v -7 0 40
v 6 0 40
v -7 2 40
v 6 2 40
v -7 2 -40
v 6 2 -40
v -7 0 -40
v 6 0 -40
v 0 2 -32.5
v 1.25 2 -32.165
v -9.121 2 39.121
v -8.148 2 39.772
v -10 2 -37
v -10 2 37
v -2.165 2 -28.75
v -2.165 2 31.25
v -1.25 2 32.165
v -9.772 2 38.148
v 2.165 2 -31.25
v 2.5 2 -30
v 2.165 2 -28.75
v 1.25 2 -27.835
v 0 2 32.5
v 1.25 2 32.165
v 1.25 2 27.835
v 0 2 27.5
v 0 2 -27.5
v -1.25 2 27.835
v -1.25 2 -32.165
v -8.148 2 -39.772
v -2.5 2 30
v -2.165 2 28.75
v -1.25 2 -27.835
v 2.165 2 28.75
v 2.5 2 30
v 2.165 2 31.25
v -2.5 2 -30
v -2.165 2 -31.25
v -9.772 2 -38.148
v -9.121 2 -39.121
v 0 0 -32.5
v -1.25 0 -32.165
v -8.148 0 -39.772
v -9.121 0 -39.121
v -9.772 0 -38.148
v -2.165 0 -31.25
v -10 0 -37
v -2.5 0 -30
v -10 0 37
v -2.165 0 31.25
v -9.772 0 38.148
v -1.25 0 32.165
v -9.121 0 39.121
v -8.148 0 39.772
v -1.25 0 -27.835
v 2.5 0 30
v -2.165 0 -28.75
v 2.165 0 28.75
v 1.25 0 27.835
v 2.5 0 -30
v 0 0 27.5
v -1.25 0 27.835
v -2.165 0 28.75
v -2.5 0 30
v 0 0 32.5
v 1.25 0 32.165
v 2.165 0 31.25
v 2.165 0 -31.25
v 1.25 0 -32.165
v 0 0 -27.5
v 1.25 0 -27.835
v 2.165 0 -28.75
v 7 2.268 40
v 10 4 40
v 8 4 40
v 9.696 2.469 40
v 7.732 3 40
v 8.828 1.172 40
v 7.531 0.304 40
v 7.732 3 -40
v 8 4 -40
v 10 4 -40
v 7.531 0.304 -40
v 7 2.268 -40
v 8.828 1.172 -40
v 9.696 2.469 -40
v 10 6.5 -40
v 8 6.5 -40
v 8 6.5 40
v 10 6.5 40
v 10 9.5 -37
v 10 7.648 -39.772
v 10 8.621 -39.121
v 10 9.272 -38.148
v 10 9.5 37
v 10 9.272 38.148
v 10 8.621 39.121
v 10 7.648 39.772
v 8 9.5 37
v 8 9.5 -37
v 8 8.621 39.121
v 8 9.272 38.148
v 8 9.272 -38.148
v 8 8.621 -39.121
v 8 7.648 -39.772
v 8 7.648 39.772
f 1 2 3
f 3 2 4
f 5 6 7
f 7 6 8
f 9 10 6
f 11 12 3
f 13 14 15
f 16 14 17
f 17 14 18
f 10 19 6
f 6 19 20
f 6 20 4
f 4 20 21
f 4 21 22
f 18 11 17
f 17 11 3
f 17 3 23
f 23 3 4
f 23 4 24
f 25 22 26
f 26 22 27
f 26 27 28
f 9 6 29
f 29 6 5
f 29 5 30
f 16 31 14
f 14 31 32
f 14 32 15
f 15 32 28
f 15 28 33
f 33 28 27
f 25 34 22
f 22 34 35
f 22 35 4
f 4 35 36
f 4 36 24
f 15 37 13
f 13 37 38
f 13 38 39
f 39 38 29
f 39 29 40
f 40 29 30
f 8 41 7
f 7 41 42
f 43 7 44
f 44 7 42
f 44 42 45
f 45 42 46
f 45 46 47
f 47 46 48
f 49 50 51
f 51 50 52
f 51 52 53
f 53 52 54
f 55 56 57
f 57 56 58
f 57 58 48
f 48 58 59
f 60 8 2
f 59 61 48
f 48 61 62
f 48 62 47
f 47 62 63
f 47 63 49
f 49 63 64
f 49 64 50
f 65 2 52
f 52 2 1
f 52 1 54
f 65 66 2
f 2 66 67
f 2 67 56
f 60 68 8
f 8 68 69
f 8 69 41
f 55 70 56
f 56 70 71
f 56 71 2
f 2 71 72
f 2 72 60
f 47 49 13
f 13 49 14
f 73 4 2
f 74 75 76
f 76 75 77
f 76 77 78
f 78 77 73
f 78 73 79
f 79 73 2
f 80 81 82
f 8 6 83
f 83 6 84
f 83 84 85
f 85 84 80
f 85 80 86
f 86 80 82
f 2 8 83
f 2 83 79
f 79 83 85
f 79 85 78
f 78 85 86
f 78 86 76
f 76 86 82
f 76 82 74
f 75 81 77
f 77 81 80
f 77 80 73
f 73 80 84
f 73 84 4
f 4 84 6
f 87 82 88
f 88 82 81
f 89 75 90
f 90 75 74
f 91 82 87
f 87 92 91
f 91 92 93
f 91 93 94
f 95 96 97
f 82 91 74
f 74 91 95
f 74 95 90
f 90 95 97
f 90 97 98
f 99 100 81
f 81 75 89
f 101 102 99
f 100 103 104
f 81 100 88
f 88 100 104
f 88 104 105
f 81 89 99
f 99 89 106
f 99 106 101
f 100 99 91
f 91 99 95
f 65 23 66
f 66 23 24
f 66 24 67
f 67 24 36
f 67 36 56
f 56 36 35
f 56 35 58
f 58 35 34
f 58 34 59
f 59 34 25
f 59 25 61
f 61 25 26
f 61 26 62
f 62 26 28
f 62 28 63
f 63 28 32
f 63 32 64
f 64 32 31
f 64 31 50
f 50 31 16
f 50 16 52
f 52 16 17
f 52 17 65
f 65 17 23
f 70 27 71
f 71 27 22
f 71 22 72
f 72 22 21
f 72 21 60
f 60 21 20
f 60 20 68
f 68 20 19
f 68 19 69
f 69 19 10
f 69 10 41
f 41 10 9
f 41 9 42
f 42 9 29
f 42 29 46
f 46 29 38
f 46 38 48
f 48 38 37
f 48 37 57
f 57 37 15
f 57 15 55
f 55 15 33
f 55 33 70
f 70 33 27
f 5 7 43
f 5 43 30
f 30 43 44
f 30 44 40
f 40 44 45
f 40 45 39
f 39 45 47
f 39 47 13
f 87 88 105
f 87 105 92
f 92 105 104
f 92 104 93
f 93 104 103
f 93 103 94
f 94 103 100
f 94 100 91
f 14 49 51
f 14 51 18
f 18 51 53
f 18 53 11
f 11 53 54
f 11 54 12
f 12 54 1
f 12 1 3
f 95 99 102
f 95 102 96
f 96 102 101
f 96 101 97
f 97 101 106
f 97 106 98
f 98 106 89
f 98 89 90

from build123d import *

# Parameters (mm, degrees)
SKETCH1_W                    = 20
SKETCH1_H                    = 80
BASE_FLANGE1_DEPTH           = 2
EDGE_FLANGE1_STRIP_W         = 12
EDGE_FLANGE1_STRIP_H         = 2
EDGE_FLANGE1_STRIP_CUT_DEPTH = 80
EDGE_FLANGE1_DEPTH           = 80
F_5_0MM_DOWEL_HOLE1_D        = 5
FILLET1_R                    = 3


# Sheet-metal steps are written as plain solids
with BuildPart() as part:
    # Sketch1 → Base-Flange1 (new body)
    with BuildSketch(Plane(origin=(0, 0, 0), x_dir=(1, 0, 0), z_dir=(0, 1, 0))):
        Rectangle(SKETCH1_W, SKETCH1_H)
    extrude(amount=BASE_FLANGE1_DEPTH)

    # Edge-Flange1 strip (across the edge) → Edge-Flange1 strip cut (cut)
    with BuildSketch(Plane(origin=(10, 2, 40), x_dir=(-1, 0, 0), z_dir=(0, 0, -1))):
        with Locations((-2, -1)):
            Rectangle(EDGE_FLANGE1_STRIP_W, EDGE_FLANGE1_STRIP_H)
    extrude(amount=EDGE_FLANGE1_STRIP_CUT_DEPTH, mode=Mode.SUBTRACT)

    # Edge-Flange1 section (across the edge) → Edge-Flange1 (add)
    with BuildSketch(Plane(origin=(10, 2, 40), x_dir=(-1, 0, 0), z_dir=(0, 0, -1))):
        with BuildLine():
            Line((0, 2), (0, 7.5))
            Line((0, 7.5), (2, 7.5))
            Line((2, 7.5), (2, 2))
            ThreePointArc((2, 2), (2.585786438, 0.585786438), (4, 0))
            Line((4, 0), (4, -2))
            ThreePointArc((4, -2), (1.171572875, -0.828427125), (0, 2))
        make_face()
    extrude(amount=EDGE_FLANGE1_DEPTH)

    # Ø5.0mm Dowel Hole1 (through all)
    with Locations(Plane(origin=(0, 2, 0), x_dir=(1, 0, 0), z_dir=(0, 1, 0))):
        with Locations((0, 30), (0, -30)):
            Hole(F_5_0MM_DOWEL_HOLE1_D / 2)

    # Fillet1
    fillet1_edges = [part.edges().sort_by_distance(p)[0] for p in [
        (9, 9.5, 40),
        (9, 9.5, -40),
        (-10, 1, -40),
        (-10, 1, 40),
    ]]
    fillet(fillet1_edges, radius=FILLET1_R)


solid = part.part
